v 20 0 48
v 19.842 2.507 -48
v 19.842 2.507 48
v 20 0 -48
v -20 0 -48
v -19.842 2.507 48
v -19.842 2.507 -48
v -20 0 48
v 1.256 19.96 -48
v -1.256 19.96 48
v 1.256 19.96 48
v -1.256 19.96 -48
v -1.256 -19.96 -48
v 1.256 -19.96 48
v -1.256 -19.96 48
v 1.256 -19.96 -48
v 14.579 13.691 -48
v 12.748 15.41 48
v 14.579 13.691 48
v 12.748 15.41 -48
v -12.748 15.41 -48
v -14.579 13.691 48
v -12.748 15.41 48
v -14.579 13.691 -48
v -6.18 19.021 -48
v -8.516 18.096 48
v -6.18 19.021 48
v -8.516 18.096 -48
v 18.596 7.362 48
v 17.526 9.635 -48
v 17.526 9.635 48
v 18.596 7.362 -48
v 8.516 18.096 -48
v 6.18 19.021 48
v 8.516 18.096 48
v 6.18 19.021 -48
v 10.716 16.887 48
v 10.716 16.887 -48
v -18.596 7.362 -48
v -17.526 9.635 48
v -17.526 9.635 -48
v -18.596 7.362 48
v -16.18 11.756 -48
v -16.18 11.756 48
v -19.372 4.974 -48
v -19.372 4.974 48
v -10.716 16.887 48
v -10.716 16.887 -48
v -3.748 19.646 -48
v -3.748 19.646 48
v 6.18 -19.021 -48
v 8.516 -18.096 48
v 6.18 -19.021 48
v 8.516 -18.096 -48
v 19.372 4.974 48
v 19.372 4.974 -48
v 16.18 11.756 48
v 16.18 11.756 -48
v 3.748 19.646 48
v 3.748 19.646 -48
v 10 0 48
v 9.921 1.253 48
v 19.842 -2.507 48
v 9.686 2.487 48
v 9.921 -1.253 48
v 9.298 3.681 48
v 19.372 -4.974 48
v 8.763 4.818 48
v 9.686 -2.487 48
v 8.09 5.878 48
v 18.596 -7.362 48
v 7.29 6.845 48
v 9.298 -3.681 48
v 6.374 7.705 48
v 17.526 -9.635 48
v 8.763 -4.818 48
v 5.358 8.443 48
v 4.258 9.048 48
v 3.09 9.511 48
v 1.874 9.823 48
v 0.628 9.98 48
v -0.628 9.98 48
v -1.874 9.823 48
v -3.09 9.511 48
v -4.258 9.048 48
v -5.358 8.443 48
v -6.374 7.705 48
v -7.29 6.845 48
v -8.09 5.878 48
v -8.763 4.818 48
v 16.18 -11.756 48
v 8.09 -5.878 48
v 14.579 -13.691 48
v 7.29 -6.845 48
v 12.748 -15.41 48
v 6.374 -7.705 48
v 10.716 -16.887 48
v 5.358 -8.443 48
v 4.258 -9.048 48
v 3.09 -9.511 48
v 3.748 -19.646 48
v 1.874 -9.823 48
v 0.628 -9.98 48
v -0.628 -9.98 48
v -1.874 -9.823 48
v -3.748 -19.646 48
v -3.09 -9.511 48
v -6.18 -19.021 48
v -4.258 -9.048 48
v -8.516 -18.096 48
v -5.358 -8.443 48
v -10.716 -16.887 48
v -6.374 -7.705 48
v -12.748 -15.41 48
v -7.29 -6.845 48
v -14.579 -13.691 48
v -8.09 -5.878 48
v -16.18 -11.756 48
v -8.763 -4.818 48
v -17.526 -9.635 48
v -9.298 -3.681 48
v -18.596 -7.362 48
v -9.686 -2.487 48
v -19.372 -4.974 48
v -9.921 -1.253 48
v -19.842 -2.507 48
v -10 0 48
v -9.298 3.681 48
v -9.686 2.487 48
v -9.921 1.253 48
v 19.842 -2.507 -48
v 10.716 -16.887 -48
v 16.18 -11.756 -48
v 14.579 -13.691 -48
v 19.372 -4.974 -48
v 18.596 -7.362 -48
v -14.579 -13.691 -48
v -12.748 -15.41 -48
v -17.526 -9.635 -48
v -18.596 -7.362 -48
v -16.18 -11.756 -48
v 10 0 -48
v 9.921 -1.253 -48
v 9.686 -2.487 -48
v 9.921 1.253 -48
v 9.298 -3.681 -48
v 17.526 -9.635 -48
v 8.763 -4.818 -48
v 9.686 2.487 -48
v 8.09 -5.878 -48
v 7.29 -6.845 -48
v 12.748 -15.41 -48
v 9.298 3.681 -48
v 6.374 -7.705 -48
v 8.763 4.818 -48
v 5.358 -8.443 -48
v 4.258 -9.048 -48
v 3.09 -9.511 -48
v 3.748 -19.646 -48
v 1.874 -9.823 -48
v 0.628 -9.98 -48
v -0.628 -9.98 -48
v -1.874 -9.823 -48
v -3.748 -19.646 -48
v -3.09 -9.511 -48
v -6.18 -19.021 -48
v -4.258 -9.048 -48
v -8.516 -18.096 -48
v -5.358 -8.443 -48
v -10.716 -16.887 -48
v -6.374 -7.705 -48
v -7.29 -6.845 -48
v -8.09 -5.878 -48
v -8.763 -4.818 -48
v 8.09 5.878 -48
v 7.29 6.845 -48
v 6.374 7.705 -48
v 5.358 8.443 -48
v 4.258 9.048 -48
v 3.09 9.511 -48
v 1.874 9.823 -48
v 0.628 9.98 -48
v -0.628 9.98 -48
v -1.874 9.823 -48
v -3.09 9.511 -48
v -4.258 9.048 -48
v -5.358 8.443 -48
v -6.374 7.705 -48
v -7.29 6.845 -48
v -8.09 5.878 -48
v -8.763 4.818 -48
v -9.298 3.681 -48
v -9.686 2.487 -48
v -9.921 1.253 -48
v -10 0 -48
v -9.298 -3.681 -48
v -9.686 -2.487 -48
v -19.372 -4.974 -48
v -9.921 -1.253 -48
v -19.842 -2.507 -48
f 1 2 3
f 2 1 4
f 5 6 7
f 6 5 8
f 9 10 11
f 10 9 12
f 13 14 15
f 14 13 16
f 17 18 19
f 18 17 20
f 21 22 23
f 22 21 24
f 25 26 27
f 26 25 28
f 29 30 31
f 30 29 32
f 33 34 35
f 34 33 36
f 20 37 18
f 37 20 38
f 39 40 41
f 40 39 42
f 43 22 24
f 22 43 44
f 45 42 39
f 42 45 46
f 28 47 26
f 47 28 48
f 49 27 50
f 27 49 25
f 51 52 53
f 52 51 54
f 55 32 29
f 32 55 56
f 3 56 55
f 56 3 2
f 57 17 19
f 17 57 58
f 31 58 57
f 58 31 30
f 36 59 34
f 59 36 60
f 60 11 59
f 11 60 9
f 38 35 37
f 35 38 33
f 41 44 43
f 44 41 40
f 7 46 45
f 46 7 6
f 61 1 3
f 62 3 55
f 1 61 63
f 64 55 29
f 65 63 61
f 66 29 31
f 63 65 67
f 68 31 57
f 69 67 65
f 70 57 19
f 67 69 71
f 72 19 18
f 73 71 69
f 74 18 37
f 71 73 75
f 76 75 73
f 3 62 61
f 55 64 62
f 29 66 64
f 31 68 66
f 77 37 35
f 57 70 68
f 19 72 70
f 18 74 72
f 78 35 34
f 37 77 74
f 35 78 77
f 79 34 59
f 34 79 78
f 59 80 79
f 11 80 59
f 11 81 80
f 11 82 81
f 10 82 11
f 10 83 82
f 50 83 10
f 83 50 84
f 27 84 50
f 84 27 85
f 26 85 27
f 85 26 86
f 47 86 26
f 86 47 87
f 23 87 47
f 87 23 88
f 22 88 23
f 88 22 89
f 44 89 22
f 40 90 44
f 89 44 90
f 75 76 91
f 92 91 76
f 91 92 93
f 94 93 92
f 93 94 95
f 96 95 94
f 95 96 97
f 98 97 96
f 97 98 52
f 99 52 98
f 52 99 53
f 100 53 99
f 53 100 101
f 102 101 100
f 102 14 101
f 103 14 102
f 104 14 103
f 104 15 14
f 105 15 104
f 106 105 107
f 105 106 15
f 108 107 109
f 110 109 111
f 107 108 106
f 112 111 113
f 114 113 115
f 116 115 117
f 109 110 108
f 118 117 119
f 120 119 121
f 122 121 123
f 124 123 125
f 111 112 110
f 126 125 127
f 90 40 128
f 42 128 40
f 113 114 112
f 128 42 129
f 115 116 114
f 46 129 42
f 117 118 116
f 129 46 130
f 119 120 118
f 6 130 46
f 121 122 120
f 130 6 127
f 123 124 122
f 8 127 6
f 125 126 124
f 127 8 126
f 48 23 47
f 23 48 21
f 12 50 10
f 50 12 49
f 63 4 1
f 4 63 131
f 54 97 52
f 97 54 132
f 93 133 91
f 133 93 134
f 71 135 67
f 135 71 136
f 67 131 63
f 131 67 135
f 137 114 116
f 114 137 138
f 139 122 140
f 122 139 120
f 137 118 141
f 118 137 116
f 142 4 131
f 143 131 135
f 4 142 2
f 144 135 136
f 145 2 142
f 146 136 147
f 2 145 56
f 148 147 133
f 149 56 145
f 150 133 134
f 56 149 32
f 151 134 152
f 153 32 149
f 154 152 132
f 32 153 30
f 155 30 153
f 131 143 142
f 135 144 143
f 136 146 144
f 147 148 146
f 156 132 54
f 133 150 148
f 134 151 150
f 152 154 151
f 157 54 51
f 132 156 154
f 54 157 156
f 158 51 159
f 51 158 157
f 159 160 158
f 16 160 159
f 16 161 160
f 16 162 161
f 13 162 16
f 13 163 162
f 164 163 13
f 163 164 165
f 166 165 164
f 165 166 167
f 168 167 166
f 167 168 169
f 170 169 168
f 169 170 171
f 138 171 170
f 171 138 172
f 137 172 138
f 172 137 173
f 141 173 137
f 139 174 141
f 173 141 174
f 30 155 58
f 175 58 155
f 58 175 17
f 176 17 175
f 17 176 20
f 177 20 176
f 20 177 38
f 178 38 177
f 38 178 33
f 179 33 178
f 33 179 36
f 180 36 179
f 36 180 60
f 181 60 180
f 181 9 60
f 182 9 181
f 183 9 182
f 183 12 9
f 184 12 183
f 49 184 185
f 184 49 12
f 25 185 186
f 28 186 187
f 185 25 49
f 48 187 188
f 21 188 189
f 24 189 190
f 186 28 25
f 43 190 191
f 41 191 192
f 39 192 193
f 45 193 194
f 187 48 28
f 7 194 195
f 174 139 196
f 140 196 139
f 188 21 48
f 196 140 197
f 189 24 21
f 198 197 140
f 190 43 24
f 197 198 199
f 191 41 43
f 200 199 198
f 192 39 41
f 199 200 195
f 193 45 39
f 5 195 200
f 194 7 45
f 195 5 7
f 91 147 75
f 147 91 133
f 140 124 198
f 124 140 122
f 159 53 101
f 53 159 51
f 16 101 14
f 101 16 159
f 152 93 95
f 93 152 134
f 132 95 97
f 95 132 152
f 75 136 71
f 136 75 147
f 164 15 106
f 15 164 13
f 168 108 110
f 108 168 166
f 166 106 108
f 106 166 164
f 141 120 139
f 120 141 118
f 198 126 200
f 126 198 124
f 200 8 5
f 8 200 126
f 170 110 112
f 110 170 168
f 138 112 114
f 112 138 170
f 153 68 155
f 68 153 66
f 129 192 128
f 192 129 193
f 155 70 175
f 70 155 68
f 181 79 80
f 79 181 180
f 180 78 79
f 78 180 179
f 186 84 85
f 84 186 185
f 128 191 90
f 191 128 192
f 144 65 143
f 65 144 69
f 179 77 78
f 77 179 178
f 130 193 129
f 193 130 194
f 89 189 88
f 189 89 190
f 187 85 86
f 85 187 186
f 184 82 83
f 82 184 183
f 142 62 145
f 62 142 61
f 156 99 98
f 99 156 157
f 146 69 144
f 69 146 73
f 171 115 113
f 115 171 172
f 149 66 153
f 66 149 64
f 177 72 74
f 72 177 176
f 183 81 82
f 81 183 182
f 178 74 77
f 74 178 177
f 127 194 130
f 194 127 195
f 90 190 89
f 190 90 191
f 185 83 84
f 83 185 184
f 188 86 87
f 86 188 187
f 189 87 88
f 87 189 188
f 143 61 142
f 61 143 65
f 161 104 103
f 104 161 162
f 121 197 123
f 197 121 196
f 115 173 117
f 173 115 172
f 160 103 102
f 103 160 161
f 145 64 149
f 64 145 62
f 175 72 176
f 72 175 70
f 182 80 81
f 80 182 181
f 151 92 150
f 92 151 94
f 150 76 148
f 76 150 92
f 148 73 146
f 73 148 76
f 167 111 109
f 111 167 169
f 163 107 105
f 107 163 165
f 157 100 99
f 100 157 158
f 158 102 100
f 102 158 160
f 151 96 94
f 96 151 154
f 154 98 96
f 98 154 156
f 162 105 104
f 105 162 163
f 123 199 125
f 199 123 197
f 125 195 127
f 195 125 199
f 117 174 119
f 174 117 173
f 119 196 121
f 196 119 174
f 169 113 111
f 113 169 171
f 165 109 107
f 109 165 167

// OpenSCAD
$fn = 50;


difference() {
	union() {
		translate(v = [0, 0, -48.0000000000]) {
			cylinder(h = 96, r = 20.0000000000);
		}
	}
	union() {
		translate(v = [0, 0, -100.0000000000]) {
			cylinder(h = 200, r = 10);
		}
	}
}
